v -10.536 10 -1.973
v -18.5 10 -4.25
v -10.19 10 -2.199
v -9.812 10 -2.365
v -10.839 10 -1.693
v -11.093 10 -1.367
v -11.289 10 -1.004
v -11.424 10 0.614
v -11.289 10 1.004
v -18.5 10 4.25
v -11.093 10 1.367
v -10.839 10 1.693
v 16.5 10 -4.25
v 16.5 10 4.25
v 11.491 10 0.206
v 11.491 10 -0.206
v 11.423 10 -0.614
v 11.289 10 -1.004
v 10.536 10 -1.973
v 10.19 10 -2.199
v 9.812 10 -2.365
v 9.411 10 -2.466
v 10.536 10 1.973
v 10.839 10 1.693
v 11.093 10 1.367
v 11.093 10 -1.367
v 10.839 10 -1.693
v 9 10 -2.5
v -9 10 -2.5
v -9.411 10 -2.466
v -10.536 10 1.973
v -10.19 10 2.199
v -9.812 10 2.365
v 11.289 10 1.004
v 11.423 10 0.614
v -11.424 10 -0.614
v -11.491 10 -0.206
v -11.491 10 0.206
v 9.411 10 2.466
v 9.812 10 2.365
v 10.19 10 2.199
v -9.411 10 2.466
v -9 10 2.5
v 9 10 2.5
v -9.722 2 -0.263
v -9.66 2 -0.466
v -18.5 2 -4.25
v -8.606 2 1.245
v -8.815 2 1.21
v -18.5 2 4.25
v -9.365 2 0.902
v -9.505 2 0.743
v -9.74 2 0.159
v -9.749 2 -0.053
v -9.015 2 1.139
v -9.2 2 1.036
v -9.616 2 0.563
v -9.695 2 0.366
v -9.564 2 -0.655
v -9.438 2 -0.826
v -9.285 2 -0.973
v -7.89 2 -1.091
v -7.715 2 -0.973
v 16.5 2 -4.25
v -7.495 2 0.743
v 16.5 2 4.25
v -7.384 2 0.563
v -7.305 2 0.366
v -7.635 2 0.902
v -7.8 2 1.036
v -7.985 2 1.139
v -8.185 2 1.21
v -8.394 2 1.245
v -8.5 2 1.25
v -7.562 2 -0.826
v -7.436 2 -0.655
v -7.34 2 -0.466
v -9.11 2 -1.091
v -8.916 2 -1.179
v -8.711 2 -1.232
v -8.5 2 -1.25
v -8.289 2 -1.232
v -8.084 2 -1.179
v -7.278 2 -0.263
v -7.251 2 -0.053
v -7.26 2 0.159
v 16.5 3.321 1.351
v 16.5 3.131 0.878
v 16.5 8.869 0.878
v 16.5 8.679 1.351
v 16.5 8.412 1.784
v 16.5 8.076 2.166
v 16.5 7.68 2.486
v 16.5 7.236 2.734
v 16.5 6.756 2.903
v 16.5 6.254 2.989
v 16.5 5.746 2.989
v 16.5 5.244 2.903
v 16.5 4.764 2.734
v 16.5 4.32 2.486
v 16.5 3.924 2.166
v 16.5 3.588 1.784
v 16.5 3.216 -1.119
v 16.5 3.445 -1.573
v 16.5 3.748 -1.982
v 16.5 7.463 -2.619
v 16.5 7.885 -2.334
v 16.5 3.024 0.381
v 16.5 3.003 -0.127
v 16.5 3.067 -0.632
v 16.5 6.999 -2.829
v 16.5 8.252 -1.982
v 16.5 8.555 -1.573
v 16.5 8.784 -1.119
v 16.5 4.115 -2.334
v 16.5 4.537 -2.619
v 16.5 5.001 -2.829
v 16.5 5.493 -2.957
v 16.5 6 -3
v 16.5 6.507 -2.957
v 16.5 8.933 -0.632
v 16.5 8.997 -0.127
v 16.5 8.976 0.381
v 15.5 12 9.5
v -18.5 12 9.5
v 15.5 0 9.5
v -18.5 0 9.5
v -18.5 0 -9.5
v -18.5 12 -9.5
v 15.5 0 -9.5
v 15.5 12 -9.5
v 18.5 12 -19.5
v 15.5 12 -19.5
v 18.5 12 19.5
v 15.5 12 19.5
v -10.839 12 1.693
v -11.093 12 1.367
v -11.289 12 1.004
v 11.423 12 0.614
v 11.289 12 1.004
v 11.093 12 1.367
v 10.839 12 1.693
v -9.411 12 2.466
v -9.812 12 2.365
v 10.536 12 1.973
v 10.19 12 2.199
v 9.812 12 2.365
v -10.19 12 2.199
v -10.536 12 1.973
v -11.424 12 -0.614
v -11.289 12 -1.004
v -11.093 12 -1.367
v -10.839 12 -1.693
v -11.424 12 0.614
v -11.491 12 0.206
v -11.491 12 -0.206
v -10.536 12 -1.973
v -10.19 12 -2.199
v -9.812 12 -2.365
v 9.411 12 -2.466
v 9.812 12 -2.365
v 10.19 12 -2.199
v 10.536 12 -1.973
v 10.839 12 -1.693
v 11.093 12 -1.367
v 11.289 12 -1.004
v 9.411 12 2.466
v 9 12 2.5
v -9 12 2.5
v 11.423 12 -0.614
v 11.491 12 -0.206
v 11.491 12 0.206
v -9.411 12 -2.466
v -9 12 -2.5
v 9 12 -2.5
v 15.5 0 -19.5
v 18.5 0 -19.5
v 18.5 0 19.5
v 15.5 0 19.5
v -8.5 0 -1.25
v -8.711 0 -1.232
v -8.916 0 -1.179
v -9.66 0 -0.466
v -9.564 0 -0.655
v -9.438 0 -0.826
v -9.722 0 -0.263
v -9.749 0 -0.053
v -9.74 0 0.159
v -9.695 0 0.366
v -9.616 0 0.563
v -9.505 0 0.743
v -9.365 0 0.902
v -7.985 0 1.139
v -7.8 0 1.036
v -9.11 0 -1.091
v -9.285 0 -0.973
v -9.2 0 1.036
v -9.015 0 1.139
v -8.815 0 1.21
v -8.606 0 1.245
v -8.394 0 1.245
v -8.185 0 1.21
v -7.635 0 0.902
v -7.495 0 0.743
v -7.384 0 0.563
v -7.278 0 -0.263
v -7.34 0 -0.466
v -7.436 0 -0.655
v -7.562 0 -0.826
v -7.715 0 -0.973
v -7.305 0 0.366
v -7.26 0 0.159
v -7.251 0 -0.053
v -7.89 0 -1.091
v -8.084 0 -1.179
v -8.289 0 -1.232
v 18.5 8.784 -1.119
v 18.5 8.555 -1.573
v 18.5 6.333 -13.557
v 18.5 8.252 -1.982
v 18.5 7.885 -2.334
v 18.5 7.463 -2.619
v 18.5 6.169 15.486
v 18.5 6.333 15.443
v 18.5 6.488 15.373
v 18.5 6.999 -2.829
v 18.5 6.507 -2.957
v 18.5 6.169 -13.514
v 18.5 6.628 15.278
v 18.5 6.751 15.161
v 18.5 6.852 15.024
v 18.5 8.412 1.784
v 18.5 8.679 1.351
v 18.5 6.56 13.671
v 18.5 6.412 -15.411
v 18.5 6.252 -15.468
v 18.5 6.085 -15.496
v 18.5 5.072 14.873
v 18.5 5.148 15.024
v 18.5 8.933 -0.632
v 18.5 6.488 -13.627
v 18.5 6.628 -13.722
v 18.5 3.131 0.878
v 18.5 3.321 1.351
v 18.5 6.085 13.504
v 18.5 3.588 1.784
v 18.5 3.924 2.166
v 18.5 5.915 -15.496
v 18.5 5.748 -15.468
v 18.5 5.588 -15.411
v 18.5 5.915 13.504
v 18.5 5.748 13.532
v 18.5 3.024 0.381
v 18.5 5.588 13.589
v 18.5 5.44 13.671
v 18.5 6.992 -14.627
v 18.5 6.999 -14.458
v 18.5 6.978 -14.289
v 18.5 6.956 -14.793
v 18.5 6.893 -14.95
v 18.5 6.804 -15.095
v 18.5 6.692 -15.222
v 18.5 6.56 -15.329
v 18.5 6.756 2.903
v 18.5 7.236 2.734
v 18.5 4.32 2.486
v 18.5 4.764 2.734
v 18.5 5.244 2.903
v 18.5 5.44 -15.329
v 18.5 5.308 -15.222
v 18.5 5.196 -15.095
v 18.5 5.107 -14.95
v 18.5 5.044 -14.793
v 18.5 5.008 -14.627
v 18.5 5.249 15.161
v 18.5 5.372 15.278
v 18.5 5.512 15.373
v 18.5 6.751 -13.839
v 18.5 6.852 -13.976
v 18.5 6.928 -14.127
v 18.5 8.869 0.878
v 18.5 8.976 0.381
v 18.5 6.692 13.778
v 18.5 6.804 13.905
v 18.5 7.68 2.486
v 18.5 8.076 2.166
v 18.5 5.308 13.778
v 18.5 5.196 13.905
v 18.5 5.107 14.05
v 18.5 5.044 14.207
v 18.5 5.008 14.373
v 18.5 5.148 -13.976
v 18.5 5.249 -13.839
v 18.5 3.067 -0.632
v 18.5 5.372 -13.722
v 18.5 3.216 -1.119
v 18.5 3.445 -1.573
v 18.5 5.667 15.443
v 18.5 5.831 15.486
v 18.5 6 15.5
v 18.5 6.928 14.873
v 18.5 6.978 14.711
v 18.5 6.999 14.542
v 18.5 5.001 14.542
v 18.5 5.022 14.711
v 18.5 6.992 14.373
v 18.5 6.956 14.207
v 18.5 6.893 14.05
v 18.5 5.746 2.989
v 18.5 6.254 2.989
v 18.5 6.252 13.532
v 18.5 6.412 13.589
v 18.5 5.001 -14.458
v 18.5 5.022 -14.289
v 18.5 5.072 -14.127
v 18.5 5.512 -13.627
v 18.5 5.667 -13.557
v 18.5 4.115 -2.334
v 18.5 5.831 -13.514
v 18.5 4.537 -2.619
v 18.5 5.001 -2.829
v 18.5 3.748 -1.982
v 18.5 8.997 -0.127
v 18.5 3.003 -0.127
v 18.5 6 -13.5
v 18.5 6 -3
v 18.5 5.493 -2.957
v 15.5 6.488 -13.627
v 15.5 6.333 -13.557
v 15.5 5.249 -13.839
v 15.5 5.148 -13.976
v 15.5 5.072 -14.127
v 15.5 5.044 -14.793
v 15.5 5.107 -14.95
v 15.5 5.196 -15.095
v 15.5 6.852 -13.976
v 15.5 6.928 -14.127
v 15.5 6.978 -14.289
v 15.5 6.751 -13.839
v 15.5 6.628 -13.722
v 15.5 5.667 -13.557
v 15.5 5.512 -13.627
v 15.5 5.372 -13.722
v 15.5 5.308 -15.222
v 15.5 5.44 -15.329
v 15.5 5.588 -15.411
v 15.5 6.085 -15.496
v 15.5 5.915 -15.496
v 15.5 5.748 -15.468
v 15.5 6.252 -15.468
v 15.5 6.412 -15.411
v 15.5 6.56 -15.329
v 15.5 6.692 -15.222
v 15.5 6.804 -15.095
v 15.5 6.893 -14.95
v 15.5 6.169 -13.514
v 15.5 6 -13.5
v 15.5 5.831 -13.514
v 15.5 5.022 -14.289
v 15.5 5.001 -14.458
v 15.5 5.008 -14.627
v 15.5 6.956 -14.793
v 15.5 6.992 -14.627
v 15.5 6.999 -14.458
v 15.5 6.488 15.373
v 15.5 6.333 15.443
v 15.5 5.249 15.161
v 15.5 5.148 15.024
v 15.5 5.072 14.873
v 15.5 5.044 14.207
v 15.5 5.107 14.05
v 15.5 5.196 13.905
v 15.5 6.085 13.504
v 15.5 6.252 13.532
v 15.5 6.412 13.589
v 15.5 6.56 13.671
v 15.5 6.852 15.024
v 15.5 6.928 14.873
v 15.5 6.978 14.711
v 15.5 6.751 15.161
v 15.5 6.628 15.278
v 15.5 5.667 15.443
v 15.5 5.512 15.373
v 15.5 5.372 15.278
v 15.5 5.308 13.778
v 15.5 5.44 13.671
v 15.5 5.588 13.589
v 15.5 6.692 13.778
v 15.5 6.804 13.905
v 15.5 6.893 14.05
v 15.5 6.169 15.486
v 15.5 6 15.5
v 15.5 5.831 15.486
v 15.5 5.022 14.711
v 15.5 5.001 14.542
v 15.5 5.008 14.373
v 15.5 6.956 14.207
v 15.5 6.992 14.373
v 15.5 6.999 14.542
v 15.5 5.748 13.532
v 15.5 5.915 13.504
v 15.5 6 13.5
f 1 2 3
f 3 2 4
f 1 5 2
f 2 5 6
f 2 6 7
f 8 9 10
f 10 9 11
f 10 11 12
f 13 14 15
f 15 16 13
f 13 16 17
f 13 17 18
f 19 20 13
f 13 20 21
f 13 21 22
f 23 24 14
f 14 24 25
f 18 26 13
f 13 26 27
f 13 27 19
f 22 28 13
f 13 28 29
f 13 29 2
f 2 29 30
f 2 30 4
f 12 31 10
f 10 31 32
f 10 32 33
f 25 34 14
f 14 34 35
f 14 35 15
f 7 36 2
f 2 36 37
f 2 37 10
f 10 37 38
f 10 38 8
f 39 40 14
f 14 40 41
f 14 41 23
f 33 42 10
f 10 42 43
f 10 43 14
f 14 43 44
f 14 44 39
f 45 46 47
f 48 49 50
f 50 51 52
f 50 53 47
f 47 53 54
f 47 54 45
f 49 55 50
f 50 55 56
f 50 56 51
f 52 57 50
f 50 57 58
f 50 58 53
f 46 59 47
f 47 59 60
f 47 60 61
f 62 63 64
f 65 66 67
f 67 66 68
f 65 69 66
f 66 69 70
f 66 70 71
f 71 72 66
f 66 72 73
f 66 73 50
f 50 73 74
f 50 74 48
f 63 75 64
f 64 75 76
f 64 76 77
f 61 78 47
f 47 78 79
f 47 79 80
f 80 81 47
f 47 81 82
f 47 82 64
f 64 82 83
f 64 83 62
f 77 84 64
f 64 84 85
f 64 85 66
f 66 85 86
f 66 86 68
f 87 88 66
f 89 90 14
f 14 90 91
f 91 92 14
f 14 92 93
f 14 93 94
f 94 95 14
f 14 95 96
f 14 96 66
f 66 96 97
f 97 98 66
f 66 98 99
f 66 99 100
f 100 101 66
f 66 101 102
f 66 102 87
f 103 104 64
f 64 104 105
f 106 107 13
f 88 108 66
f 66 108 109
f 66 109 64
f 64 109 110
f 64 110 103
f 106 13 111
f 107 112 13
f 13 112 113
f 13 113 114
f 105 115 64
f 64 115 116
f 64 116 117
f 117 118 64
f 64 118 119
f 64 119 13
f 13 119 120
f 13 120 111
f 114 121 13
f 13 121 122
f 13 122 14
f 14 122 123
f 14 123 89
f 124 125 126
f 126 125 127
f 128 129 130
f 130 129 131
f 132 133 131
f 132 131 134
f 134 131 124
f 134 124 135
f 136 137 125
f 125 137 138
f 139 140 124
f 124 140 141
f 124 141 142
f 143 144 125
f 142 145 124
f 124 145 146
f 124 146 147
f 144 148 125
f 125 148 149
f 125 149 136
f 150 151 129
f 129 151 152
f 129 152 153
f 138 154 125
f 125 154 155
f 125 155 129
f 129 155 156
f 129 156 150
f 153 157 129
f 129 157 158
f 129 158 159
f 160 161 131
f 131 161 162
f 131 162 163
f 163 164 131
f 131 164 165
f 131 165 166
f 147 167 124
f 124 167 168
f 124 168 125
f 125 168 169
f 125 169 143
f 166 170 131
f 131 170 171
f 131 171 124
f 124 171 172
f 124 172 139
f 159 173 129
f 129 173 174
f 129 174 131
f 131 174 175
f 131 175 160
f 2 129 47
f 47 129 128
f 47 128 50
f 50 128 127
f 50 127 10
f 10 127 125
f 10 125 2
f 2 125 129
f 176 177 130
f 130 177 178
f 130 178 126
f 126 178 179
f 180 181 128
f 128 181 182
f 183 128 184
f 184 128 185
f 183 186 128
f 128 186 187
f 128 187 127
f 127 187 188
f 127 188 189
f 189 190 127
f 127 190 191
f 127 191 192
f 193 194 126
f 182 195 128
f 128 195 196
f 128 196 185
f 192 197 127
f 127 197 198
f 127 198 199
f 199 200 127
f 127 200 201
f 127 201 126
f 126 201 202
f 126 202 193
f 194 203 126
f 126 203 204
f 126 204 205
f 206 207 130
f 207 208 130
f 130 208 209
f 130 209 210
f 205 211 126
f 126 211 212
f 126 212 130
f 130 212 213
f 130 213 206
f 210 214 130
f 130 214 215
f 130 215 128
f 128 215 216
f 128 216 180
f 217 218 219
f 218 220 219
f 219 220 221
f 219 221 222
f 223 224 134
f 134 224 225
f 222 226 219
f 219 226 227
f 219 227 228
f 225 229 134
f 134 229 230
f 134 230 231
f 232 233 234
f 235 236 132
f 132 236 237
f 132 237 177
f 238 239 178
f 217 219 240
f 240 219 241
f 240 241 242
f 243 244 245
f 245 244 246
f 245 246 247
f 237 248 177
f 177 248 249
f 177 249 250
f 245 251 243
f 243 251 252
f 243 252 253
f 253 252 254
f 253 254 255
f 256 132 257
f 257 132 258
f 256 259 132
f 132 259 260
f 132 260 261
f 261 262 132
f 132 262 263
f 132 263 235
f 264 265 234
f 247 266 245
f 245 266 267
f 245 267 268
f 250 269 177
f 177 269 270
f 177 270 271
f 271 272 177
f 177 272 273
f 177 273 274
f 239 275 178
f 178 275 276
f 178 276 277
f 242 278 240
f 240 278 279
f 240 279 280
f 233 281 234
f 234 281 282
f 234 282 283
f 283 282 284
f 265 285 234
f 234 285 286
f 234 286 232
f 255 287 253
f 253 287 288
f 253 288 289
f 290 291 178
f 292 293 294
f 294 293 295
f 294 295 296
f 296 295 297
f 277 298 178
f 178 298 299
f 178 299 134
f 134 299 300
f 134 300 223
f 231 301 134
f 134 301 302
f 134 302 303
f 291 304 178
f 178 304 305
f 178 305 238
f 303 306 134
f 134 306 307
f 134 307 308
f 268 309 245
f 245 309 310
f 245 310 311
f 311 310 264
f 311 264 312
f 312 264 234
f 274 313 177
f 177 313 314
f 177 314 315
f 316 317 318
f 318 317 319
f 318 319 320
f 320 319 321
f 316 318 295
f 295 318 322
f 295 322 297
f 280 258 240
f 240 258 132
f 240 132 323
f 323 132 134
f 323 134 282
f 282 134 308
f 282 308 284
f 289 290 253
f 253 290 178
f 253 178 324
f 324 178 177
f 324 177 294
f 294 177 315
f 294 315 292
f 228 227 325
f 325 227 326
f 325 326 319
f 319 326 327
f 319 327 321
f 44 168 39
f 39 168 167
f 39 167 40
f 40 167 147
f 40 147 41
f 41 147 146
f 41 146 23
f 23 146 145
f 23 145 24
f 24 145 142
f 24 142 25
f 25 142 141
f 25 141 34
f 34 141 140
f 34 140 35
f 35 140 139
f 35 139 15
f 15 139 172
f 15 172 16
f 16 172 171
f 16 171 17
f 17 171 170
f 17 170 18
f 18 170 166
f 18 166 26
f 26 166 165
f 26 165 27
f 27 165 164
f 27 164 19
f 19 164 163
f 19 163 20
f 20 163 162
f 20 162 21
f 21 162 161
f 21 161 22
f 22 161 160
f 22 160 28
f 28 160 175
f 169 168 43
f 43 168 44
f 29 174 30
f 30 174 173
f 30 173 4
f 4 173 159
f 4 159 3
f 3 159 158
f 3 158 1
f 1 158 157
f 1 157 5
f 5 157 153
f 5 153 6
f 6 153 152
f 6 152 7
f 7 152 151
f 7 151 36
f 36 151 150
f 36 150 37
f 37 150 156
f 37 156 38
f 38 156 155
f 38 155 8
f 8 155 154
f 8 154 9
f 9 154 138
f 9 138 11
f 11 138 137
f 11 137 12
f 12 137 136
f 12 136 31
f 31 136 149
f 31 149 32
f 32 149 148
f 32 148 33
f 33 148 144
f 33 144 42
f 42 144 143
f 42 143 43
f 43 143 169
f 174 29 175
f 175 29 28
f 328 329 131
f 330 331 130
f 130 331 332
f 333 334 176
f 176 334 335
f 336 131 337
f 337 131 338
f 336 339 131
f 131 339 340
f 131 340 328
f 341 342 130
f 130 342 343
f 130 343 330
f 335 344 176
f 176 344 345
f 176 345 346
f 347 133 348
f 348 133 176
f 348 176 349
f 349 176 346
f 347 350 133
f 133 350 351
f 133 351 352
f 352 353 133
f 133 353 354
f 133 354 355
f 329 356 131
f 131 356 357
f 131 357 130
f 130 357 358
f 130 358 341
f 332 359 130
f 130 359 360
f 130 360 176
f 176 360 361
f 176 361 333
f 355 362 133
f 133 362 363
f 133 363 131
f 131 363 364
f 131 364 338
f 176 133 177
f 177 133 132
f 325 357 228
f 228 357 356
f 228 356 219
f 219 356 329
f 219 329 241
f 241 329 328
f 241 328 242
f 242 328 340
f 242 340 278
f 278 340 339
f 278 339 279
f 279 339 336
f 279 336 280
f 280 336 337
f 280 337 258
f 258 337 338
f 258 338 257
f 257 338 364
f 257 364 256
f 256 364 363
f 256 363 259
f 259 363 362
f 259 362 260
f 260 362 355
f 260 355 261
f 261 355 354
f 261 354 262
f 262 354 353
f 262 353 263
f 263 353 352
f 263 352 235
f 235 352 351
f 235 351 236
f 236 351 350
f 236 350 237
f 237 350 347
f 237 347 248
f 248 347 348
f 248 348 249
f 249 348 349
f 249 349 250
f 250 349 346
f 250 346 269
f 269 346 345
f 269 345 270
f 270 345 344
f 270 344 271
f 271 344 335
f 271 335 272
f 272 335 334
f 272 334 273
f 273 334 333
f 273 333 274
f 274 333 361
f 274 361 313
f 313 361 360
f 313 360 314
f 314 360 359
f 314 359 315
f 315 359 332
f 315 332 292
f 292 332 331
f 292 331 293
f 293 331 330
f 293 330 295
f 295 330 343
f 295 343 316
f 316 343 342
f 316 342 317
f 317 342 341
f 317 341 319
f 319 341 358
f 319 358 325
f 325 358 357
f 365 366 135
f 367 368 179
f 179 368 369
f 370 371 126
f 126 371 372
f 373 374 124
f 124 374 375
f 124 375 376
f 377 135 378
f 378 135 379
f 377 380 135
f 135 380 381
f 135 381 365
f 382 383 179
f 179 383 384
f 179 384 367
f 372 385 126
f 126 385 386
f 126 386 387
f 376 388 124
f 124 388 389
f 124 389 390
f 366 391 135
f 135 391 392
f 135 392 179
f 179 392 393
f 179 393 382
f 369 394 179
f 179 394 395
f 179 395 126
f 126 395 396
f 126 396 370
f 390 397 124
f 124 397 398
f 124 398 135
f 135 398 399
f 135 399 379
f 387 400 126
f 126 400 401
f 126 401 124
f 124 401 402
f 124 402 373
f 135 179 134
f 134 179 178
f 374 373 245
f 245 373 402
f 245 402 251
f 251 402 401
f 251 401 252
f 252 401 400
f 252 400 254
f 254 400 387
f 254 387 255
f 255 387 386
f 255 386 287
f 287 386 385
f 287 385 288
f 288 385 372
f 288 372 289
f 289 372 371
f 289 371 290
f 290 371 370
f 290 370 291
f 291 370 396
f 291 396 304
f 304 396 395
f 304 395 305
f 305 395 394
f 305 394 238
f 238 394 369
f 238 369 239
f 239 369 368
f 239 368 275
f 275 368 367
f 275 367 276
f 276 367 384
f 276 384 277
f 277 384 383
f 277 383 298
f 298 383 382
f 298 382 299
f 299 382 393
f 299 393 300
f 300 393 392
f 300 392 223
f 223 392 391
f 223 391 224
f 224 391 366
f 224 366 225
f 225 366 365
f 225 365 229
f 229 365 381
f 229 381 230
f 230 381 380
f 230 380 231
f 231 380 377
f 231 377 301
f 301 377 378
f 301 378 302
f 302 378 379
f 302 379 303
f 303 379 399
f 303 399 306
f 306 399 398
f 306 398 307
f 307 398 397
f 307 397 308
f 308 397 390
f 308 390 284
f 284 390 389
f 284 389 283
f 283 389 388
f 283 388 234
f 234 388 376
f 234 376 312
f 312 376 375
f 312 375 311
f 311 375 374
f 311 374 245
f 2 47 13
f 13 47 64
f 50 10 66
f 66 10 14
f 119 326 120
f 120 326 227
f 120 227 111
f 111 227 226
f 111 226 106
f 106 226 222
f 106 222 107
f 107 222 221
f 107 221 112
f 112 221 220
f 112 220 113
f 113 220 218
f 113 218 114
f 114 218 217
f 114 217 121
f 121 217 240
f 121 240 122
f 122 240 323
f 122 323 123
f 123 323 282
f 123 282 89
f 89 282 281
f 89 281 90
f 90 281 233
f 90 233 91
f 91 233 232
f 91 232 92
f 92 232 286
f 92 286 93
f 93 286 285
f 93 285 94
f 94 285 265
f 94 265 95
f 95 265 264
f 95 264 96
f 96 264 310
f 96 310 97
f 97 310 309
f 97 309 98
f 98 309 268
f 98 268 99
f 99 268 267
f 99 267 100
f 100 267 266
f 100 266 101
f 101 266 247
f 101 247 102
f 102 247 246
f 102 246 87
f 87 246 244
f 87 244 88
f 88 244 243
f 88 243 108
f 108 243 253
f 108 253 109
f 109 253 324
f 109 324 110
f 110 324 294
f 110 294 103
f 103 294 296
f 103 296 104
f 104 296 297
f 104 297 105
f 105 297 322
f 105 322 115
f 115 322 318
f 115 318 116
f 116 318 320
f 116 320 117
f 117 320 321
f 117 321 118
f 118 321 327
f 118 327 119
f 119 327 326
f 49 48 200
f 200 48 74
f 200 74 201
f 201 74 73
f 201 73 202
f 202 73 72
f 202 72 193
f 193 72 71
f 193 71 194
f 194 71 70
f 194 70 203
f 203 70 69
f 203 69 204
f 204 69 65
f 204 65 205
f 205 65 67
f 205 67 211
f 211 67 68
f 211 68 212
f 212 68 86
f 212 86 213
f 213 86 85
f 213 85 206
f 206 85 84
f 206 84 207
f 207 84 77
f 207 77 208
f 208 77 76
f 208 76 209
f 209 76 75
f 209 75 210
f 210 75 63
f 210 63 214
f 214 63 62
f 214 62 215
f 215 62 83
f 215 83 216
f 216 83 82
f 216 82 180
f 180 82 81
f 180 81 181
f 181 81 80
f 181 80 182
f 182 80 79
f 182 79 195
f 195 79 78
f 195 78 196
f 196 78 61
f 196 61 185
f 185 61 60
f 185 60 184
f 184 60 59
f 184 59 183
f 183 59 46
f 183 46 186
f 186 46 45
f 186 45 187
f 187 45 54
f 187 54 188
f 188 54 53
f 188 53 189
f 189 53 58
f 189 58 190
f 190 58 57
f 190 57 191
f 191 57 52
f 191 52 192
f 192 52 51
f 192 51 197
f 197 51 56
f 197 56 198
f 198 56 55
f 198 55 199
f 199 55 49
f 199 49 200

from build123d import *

# Parameters (mm, degrees)
CROQUIS1_W              = 35
CROQUIS1_H              = 15
SALIENTE_EXTRUIR1_DEPTH = 2
SALIENTE_EXTRUIR2_DEPTH = 10
CROQUIS2_W              = 37
CROQUIS2_H              = 19
SALIENTE_EXTRUIR3_DEPTH = 2
CORTAR_EXTRUIR4_DEPTH   = 3
CROQUIS8_W              = 3
CROQUIS8_H              = 12
SALIENTE_EXTRUIR5_DEPTH = 10
CROQUIS9_R              = 1
CORTAR_EXTRUIR5_DEPTH   = 10
CROQUIS10_W             = 3.25
CROQUIS10_H             = 8
SALIENTE_EXTRUIR6_DEPTH = 35
CROQUIS11_R             = 3
CORTAR_EXTRUIR6_DEPTH   = 35
CROQUIS12_R             = 1.25
CORTAR_EXTRUIR7_DEPTH   = 5


with BuildPart() as part:
    # Croquis1 → Saliente-Extruir1 (new body)
    with BuildSketch(Plane(origin=(0, 0, 0), x_dir=(1, 0, 0), z_dir=(0, 1, 0))):
        with Locations((-1, 0)):
            Rectangle(CROQUIS1_W, CROQUIS1_H)
    extrude(amount=SALIENTE_EXTRUIR1_DEPTH)

    # Croquis1<4> → Saliente-Extruir2 (add)
    with BuildSketch(Plane(origin=(0, 0, 0), x_dir=(1, 0, 0), z_dir=(0, 1, 0))):
        Polygon((16.5, -7.5), (-16.5, -7.5), (-18.5, -7.5), (-18.5, -9.5), (18.5, -9.5), (18.5, 9.5), (-18.5, 9.5), (-18.5, 7.5), (-16.5, 7.5), (16.5, 7.5), align=None)
    extrude(amount=SALIENTE_EXTRUIR2_DEPTH)

    # Croquis2 → Saliente-Extruir3 (add)
    with BuildSketch(Plane(origin=(0, 10, 0), x_dir=(1, 0, 0), z_dir=(0, 1, 0))):
        Rectangle(CROQUIS2_W, CROQUIS2_H)
    extrude(amount=SALIENTE_EXTRUIR3_DEPTH)

    # Croquis7 → Cortar-Extruir4 (cut)
    with BuildSketch(Plane(origin=(0, 12, 0), x_dir=(1, 0, 0), z_dir=(0, 1, 0))):
        with BuildLine():
            Line((9, 2.5), (-9, 2.5))
            ThreePointArc((-9, 2.5), (-11.5, 0), (-9, -2.5))
            Line((-9, -2.5), (9, -2.5))
            ThreePointArc((9, -2.5), (11.5, 0), (9, 2.5))
        make_face()
    extrude(amount=-CORTAR_EXTRUIR4_DEPTH, mode=Mode.SUBTRACT)

    # Croquis8 → Saliente-Extruir5 (add)
    with BuildSketch(Plane(origin=(0, 0, -9.5), x_dir=(-1, 0, 0), z_dir=(0, 0, -1))):
        with Locations((-17, 6)):
            Rectangle(CROQUIS8_W, CROQUIS8_H)
    saliente_extruir5 = extrude(amount=SALIENTE_EXTRUIR5_DEPTH)

    # Croquis9 → Cortar-Extruir5 (cut)
    with BuildSketch(Plane.ZY.offset(-15.5)):
        with Locations((-14.5, 6)):
            Circle(CROQUIS9_R)
    cortar_extruir5 = extrude(amount=-CORTAR_EXTRUIR5_DEPTH, mode=Mode.SUBTRACT)

    # Simetría3: Saliente-Extruir5, Cortar-Extruir5 across plane
    add(saliente_extruir5.mirror(Plane.XY))
    add(cortar_extruir5.mirror(Plane.XY), mode=Mode.SUBTRACT)

    # Croquis10 → Saliente-Extruir6 (add)
    with BuildSketch(Plane.ZY.offset(-16.5)):
        with Locations((-5.875, 6)):
            Rectangle(CROQUIS10_W, CROQUIS10_H)
        with Locations((5.875, 6)):
            Rectangle(CROQUIS10_W, CROQUIS10_H)
    extrude(amount=SALIENTE_EXTRUIR6_DEPTH)

    # Croquis11 → Cortar-Extruir6 (cut)
    with BuildSketch(Plane(origin=(18.5, 0, 0), x_dir=(0, 0, -1), z_dir=(1, 0, 0))):
        with Locations((0, 6)):
            Circle(CROQUIS11_R)
    extrude(amount=-CORTAR_EXTRUIR6_DEPTH, mode=Mode.SUBTRACT)

    # Croquis12 → Cortar-Extruir7 (cut)
    with BuildSketch(Plane.XZ):
        with Locations((-8.5, 0)):
            Circle(CROQUIS12_R)
    extrude(amount=-CORTAR_EXTRUIR7_DEPTH, mode=Mode.SUBTRACT)


solid = part.part
